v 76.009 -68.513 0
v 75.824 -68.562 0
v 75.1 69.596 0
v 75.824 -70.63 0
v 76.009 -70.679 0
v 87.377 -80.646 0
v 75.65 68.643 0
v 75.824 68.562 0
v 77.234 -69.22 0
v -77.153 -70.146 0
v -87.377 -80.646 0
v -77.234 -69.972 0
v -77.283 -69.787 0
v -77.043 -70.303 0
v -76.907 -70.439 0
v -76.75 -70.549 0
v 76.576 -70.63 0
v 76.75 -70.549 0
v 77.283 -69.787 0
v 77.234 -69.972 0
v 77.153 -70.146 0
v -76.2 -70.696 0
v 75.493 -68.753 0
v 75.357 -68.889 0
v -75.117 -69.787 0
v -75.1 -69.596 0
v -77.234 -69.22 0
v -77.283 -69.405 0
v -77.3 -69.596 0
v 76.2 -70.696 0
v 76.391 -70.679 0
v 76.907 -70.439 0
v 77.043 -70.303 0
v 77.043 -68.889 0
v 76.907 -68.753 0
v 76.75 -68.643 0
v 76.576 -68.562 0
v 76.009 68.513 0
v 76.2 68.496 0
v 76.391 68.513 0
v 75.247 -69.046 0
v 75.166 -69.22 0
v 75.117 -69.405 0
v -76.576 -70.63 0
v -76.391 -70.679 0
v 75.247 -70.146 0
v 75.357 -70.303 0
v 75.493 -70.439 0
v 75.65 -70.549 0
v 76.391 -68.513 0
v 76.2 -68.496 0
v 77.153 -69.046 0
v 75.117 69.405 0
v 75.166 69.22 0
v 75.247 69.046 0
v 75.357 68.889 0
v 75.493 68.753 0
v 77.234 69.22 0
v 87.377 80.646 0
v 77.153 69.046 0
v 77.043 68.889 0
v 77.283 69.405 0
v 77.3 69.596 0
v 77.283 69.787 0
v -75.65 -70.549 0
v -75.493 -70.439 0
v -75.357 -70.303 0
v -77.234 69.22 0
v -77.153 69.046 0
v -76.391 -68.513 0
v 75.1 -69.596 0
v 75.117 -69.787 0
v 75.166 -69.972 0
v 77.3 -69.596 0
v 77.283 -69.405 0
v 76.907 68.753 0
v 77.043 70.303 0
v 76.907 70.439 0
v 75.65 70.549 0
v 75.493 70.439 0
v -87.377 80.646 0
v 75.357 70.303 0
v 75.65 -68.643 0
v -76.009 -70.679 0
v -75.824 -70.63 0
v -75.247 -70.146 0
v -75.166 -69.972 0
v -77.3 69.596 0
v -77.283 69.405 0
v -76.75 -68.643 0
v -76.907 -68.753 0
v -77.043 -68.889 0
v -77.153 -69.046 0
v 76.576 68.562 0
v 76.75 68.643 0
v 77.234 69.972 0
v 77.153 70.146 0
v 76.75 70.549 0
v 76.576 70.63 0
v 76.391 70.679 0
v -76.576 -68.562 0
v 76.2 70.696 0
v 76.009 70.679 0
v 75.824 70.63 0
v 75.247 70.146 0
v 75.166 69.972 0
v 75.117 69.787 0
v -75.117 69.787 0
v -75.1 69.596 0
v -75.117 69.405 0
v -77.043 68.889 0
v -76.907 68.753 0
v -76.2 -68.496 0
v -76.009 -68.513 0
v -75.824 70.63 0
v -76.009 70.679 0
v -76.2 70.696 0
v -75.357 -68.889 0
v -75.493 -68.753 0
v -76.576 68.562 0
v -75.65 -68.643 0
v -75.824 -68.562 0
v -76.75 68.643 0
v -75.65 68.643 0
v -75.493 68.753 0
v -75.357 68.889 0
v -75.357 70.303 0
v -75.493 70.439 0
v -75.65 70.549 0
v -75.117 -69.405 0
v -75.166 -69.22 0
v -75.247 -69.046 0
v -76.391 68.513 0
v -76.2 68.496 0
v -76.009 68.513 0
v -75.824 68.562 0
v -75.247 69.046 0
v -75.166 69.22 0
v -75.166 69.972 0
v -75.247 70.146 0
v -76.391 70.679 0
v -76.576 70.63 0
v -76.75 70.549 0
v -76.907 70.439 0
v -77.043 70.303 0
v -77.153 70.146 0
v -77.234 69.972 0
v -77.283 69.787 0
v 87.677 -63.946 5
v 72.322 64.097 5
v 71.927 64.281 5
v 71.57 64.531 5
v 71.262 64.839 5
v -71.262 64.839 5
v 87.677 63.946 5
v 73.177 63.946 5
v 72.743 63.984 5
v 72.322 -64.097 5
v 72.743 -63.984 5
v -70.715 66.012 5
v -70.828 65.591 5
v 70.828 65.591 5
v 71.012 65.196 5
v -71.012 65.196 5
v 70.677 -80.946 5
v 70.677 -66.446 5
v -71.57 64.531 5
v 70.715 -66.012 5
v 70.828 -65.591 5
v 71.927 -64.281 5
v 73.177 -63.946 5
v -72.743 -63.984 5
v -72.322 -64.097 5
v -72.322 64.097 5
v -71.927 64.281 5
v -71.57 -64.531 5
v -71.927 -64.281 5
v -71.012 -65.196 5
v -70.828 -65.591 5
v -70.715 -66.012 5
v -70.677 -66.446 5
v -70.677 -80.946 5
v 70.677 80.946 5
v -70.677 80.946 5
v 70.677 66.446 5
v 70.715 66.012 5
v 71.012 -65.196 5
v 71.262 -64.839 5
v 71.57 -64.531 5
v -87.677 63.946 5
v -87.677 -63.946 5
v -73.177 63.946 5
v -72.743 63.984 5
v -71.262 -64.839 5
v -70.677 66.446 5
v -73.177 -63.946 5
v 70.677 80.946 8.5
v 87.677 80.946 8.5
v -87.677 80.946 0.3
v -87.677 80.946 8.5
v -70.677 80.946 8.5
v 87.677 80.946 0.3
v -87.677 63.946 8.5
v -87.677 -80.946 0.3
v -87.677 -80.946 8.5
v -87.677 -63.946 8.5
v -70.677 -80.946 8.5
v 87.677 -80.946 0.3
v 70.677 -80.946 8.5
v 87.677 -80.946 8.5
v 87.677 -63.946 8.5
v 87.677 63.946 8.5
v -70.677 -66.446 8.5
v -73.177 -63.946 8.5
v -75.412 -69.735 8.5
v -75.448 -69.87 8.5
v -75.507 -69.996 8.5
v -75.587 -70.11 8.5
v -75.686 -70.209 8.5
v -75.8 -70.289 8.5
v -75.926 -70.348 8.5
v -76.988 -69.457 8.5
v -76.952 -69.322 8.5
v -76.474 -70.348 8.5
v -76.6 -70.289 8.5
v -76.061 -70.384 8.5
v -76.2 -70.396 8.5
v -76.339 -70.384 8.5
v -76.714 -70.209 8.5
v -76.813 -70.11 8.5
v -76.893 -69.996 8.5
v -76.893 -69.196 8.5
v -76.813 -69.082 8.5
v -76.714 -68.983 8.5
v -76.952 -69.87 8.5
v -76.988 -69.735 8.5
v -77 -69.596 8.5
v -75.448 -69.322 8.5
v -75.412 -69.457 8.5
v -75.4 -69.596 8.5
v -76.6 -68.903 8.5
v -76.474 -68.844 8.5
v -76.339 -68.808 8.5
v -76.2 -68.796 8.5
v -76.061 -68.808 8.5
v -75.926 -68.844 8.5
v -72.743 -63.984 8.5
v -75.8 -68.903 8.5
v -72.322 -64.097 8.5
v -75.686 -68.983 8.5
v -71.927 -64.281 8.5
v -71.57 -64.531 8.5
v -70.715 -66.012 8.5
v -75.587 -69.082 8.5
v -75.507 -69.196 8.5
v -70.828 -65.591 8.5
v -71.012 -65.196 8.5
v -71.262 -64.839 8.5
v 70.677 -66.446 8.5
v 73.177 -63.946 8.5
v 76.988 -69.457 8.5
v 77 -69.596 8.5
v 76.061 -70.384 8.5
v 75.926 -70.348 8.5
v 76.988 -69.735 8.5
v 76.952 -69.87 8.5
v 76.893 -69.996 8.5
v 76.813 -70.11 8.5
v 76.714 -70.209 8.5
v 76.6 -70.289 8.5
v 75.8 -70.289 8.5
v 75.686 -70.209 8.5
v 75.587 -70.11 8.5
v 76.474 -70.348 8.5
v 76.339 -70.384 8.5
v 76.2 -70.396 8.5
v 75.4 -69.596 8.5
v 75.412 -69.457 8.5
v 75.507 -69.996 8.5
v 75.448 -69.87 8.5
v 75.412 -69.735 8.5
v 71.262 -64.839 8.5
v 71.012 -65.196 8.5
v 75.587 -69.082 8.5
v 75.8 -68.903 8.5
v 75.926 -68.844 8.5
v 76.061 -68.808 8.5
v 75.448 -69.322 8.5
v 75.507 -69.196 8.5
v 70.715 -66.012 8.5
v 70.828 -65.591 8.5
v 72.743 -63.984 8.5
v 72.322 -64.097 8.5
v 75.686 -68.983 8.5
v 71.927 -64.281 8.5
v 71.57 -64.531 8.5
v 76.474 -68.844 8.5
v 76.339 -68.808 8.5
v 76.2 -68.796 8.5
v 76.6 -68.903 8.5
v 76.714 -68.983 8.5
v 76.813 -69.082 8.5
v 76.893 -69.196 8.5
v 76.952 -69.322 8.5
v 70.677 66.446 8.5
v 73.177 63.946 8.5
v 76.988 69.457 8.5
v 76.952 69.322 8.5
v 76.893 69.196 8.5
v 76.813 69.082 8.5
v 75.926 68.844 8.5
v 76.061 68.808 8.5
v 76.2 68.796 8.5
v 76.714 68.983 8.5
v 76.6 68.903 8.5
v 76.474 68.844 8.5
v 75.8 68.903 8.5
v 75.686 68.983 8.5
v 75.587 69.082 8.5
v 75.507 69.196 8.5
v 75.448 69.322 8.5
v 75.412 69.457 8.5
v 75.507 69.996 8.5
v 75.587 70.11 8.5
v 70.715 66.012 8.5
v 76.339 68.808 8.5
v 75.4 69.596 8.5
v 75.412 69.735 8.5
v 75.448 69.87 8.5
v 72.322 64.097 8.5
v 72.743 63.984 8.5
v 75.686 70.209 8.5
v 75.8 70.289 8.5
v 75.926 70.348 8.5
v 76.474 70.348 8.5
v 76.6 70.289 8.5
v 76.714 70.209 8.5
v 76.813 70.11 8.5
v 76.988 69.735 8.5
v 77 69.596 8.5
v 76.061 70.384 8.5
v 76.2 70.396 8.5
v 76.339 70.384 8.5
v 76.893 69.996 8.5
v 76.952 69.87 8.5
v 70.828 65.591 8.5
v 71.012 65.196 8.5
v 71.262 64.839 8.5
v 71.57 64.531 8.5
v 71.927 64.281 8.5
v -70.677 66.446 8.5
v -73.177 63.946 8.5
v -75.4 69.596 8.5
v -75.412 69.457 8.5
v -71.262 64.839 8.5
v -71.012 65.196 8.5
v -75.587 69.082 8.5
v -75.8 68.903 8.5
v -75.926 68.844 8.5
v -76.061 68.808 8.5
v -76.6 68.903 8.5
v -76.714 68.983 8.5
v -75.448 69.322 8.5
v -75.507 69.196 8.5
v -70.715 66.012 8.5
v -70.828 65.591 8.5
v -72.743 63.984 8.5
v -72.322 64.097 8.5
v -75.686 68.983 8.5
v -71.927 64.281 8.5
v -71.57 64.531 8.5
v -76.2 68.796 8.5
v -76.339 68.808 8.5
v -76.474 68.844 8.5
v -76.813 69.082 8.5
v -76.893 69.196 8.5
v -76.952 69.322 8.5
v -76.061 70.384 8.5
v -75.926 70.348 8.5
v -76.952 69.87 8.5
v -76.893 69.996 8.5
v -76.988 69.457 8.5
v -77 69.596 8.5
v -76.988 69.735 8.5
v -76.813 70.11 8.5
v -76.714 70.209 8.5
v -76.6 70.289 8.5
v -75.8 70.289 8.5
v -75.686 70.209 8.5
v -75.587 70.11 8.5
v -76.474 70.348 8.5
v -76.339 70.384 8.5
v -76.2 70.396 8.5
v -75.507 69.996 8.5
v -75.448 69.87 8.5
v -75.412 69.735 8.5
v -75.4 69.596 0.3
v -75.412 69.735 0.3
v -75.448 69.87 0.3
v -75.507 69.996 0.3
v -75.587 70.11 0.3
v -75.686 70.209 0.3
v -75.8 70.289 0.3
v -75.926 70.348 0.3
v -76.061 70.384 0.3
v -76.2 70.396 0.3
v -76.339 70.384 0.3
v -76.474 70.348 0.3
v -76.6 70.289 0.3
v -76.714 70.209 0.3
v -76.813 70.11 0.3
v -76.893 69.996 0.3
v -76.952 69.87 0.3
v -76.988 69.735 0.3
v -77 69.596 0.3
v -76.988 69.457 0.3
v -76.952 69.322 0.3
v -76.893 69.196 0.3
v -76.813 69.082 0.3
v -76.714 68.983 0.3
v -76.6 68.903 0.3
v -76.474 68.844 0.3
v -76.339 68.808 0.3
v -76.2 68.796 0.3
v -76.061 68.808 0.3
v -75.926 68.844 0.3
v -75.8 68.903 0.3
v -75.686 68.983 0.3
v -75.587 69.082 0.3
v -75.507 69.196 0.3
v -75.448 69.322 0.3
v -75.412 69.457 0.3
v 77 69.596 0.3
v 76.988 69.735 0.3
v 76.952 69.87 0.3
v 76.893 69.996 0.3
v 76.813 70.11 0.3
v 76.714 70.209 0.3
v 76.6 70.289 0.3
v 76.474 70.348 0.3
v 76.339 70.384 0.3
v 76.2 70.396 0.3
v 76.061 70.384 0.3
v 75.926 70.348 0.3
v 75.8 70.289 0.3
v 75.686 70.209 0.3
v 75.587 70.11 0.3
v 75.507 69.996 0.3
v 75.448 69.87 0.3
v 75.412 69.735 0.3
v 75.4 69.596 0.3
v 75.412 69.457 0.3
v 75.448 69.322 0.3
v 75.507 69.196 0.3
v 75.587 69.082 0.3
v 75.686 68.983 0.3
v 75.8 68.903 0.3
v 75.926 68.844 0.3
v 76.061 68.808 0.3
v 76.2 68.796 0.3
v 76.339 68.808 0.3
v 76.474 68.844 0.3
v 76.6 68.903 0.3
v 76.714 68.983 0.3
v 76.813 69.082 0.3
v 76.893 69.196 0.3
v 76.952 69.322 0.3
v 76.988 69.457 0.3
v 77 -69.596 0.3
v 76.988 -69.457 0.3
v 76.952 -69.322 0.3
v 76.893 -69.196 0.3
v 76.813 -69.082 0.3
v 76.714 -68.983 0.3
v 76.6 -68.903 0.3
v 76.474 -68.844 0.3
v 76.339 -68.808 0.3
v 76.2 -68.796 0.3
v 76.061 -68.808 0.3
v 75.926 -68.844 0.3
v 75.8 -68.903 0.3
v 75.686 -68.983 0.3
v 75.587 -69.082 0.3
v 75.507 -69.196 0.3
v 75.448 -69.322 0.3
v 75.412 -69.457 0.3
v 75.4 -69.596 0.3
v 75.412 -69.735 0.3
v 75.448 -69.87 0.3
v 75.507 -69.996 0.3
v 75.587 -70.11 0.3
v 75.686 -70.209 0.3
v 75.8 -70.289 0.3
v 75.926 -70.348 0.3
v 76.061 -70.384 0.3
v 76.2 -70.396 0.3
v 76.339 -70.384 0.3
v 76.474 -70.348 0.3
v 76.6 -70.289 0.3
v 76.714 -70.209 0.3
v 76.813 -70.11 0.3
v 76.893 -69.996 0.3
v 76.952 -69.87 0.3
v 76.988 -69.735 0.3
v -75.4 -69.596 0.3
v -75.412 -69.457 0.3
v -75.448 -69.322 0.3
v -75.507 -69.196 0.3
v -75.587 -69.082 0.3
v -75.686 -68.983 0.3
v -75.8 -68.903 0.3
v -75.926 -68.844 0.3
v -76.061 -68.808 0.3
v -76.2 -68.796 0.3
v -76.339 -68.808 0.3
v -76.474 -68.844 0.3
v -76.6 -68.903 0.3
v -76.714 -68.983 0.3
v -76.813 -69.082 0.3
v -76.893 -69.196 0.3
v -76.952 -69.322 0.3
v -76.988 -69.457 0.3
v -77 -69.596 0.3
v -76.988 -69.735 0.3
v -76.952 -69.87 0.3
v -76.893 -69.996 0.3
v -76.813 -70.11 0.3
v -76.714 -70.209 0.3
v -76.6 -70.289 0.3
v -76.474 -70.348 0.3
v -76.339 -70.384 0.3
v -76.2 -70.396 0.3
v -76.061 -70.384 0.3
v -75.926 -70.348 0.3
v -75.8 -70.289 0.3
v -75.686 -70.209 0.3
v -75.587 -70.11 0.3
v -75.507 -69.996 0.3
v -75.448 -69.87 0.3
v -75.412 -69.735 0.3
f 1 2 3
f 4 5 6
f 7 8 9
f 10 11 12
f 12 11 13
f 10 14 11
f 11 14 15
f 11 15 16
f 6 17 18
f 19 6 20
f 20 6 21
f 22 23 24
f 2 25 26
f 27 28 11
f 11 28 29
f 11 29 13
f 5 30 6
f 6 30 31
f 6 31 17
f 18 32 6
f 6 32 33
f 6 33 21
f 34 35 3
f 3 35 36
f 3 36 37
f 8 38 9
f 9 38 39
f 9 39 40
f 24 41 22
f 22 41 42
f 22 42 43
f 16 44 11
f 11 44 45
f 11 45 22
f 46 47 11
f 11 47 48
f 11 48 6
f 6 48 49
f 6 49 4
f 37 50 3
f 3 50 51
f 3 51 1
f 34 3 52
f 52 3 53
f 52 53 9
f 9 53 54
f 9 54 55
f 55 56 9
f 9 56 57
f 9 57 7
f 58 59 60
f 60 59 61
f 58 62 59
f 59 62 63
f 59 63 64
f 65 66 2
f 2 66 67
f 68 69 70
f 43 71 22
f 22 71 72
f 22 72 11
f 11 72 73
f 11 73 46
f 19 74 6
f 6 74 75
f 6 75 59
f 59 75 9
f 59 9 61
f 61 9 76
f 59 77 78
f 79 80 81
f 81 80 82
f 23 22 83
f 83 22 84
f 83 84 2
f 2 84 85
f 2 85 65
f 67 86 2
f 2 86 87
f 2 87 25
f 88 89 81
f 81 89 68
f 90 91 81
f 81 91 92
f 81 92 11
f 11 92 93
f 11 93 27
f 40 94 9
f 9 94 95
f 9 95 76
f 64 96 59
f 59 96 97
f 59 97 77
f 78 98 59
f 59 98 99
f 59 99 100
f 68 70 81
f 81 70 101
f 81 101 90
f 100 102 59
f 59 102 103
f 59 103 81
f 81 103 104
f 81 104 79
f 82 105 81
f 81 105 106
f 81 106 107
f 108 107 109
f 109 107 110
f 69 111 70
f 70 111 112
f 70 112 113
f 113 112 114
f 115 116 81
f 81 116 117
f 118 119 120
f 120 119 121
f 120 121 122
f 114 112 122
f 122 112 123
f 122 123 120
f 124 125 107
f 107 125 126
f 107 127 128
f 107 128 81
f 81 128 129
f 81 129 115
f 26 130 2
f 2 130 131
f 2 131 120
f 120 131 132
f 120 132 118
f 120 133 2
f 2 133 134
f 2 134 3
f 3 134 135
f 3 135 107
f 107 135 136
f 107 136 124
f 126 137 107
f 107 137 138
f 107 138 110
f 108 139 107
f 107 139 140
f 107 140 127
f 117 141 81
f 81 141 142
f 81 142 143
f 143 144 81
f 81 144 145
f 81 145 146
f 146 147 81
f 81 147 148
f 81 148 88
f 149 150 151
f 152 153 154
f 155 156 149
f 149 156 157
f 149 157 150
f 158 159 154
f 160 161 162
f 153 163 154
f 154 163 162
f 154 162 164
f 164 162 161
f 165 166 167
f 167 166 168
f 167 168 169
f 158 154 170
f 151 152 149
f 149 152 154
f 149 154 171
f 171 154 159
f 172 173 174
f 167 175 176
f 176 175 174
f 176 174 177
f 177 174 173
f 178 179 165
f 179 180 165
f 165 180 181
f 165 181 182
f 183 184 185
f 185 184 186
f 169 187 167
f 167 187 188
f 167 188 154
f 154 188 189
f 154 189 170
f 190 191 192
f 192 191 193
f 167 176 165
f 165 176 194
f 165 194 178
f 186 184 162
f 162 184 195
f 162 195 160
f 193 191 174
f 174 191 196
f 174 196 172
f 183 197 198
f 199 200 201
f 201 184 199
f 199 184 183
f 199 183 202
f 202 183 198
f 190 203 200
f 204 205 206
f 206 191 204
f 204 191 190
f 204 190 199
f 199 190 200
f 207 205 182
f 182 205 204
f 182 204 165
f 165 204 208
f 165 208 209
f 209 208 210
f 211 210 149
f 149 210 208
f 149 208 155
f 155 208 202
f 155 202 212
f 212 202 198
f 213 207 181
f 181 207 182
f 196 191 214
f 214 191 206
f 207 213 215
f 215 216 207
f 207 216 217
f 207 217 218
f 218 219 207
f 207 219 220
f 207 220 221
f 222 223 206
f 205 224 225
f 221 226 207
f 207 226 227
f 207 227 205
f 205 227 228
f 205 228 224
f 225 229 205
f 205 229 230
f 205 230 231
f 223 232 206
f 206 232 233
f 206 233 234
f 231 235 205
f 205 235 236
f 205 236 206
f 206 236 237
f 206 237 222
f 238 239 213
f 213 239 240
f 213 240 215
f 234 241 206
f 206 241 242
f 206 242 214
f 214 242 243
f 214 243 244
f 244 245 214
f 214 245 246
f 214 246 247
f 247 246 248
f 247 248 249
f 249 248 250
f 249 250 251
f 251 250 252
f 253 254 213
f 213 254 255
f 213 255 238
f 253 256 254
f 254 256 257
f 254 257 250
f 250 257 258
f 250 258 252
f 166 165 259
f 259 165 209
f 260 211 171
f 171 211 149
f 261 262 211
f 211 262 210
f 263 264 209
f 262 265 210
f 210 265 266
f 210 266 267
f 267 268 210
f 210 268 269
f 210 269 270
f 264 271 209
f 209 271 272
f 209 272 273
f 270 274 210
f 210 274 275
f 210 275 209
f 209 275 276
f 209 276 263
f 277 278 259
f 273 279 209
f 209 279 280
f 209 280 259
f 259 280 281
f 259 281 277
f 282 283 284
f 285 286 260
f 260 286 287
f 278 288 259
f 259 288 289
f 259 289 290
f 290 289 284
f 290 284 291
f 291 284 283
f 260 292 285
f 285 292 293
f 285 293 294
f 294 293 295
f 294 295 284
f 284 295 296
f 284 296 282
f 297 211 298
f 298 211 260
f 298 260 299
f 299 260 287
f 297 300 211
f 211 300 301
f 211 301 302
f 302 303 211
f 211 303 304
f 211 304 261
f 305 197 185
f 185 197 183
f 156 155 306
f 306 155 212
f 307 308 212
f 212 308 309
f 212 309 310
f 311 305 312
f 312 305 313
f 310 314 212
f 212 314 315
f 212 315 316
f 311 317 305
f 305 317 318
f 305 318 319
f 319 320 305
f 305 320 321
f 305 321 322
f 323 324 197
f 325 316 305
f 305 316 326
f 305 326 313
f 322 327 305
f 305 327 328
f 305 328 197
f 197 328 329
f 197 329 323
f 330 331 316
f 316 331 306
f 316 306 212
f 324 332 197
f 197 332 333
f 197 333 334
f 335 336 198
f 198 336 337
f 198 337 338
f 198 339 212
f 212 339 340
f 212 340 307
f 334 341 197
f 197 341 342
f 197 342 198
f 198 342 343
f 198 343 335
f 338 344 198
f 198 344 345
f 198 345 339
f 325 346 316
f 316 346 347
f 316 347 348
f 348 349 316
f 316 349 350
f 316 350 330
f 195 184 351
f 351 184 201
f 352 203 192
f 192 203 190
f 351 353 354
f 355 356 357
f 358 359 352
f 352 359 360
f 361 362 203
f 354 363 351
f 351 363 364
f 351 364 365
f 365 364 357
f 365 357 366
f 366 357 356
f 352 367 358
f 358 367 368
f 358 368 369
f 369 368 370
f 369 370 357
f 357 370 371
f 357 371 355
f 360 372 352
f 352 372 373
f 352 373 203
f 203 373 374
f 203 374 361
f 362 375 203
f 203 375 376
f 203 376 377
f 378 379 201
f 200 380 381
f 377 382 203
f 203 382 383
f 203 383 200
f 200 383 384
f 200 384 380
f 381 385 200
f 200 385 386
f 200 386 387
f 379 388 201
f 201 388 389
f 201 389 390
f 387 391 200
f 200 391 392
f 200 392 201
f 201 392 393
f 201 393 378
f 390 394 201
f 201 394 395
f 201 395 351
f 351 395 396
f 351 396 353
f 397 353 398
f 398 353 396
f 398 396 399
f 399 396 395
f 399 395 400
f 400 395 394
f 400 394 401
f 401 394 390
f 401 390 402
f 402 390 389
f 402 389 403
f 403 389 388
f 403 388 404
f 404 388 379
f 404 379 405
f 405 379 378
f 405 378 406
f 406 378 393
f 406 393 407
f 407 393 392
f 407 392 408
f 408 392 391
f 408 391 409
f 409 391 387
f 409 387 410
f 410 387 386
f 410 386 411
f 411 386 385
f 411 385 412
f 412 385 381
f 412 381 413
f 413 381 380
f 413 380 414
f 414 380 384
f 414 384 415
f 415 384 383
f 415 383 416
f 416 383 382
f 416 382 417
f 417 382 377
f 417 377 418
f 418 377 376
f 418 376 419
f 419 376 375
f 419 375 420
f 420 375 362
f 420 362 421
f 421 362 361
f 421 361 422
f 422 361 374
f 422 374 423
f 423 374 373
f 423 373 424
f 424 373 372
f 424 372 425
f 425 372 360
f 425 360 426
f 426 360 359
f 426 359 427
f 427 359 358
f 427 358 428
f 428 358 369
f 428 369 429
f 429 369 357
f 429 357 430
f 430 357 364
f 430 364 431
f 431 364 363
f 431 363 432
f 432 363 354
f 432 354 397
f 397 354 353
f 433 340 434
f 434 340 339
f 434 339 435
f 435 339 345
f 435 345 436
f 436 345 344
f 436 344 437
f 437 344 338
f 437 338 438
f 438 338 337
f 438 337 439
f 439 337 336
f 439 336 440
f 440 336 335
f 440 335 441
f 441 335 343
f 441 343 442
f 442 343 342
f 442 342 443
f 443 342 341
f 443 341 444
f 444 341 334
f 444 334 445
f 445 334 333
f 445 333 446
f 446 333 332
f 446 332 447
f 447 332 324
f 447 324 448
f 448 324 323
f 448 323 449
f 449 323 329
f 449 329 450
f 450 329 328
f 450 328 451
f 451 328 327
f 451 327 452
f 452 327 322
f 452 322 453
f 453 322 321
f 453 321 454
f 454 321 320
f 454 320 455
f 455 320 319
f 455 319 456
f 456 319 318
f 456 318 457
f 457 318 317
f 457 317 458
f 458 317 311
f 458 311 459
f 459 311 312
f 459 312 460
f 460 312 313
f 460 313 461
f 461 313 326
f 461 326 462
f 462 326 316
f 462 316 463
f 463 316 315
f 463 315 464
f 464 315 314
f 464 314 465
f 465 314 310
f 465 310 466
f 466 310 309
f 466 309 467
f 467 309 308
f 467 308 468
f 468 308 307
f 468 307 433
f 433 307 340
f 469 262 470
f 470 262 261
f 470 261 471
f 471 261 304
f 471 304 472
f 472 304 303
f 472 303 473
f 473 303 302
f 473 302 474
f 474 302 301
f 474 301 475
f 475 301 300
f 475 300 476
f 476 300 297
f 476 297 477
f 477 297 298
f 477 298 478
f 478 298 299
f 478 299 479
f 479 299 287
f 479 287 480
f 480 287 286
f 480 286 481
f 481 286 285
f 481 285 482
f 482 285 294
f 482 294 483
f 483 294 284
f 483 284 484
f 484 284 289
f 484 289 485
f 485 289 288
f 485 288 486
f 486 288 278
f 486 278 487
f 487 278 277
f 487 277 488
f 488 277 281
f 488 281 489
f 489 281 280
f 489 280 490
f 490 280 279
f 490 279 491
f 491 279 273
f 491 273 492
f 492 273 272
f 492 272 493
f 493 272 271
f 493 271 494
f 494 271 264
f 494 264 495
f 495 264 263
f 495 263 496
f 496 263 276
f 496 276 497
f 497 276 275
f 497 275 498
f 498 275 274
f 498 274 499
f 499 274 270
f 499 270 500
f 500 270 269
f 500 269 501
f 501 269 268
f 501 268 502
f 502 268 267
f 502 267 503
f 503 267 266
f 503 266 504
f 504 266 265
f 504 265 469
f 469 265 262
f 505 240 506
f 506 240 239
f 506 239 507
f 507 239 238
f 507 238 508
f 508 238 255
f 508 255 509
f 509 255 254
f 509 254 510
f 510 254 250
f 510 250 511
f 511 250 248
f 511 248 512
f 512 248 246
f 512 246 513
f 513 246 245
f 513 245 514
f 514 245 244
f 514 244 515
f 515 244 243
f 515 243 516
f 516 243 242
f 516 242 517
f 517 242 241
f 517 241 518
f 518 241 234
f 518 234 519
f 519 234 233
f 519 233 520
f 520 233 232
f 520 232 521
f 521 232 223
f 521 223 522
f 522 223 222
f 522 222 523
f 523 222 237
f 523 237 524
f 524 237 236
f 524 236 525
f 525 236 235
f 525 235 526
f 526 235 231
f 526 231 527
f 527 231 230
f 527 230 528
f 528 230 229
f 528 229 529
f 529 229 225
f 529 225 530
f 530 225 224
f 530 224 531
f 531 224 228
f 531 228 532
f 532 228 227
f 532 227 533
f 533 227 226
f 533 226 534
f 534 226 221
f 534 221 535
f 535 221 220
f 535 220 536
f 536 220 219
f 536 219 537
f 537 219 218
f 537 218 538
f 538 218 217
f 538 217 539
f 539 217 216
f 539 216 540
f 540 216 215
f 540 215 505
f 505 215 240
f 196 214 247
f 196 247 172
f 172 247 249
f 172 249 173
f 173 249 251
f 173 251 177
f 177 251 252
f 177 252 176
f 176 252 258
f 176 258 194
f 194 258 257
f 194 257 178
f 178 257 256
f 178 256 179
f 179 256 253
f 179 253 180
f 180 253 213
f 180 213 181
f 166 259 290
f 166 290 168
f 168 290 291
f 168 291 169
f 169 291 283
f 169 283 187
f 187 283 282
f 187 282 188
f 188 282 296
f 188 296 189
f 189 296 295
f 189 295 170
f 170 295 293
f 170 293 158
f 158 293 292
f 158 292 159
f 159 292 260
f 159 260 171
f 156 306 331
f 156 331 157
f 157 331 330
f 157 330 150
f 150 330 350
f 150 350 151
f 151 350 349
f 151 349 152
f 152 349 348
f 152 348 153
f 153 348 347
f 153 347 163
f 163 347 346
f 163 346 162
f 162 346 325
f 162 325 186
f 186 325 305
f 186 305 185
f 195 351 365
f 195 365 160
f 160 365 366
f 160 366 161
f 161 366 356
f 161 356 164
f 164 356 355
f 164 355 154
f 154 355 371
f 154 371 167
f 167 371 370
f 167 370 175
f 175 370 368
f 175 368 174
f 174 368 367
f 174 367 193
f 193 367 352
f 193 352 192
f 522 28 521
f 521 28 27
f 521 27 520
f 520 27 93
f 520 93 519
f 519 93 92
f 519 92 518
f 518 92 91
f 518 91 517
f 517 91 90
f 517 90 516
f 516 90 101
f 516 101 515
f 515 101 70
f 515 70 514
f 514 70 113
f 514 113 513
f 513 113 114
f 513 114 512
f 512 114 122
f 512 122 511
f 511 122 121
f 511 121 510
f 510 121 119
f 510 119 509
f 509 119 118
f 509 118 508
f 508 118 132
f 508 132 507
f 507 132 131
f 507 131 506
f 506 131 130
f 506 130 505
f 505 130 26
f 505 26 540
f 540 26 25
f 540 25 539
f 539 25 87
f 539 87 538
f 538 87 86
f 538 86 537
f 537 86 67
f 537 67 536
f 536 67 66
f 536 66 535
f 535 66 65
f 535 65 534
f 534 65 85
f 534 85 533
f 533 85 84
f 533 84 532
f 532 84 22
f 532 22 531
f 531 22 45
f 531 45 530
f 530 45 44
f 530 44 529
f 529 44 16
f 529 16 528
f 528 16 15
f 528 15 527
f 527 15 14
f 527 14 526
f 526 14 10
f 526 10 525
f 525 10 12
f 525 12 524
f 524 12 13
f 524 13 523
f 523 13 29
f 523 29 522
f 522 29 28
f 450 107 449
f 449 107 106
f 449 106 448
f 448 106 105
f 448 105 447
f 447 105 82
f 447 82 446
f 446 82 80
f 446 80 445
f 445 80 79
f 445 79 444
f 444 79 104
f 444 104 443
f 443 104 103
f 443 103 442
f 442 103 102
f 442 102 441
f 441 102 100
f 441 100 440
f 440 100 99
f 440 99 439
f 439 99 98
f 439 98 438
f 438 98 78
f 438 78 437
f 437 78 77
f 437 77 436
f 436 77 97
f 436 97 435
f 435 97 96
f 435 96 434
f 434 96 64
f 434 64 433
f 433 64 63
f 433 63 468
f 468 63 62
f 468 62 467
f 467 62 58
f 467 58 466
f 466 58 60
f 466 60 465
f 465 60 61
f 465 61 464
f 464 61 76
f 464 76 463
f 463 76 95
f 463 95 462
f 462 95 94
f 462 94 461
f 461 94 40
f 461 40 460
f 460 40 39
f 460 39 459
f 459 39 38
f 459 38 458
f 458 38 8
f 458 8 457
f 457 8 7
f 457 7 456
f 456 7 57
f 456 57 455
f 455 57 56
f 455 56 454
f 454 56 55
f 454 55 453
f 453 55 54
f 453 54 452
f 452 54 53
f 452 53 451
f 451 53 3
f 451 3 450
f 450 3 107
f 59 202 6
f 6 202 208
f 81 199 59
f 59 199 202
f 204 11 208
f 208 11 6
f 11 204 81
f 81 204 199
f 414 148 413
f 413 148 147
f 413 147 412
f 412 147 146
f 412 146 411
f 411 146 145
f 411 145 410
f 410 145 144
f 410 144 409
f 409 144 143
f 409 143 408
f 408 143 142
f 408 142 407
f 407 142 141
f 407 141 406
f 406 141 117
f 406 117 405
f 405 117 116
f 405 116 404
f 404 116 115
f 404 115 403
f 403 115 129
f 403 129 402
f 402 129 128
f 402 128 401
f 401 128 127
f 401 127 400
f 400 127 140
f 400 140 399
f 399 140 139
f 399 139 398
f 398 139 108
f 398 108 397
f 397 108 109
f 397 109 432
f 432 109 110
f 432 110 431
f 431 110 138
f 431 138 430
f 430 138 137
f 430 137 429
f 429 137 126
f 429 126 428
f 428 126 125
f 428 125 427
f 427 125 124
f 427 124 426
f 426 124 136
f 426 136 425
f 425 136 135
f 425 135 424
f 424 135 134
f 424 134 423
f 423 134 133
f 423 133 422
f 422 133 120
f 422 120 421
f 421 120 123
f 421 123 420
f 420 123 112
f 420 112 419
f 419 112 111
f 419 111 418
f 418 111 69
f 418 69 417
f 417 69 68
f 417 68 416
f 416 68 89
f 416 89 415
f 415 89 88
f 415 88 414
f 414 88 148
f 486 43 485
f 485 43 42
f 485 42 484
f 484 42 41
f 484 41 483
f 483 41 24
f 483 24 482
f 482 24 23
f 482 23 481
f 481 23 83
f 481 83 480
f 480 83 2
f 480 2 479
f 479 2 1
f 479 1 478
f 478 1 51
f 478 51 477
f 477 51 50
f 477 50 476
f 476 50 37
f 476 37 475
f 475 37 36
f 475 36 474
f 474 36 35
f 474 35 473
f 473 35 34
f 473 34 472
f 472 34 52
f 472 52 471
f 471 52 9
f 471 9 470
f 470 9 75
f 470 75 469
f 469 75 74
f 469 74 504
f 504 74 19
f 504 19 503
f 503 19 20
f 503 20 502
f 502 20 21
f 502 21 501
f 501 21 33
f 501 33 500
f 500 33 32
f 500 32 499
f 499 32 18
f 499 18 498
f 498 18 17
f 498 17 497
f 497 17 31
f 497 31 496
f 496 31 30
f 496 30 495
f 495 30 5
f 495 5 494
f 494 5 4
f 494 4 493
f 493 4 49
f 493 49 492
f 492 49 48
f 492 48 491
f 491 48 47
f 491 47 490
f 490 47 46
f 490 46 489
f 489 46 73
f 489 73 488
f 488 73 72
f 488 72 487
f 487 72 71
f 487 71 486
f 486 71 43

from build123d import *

# Parameters (mm, degrees)
SKETCH1_W           = 161.892
SKETCH1_H           = 175.354
BOSS_EXTRUDE1_DEPTH = 5
SKETCH2_W           = 17
SKETCH2_H           = 17
BOSS_EXTRUDE2_DEPTH = 3.5
SKETCH3_R           = 0.8
CUT_EXTRUDE1_DEPTH  = 120.63177356
FILLET1_R           = 2.5
CHAMFER1_SIZE       = 0.3


with BuildPart() as part:
    # Sketch1 → Boss-Extrude1 (new body)
    with BuildSketch(Plane(origin=(0, 0, 0), x_dir=(0, 1, 0), z_dir=(0, 0, 1))):
        Rectangle(SKETCH1_W, SKETCH1_H)
    extrude(amount=BOSS_EXTRUDE1_DEPTH)

    # Sketch2 → Boss-Extrude2 (add)
    with BuildSketch(Plane.XY.offset(5)):
        with Locations((79.177, 72.446)):
            Rectangle(SKETCH2_W, SKETCH2_H)
        with Locations((79.177, -72.446)):
            Rectangle(SKETCH2_W, SKETCH2_H)
        with Locations((-79.177, -72.446)):
            Rectangle(SKETCH2_W, SKETCH2_H)
        with Locations((-79.177, 72.446)):
            Rectangle(SKETCH2_W, SKETCH2_H)
    extrude(amount=BOSS_EXTRUDE2_DEPTH)

    # Sketch3 → Cut-Extrude1 (cut, through all)
    with BuildSketch(Plane.XY.offset(8.5)):
        with Locations((-76.2, 69.596)):
            Circle(SKETCH3_R)
        with Locations((76.2, 69.596)):
            Circle(SKETCH3_R)
        with Locations((76.2, -69.596)):
            Circle(SKETCH3_R)
        with Locations((-76.2, -69.596)):
            Circle(SKETCH3_R)
    extrude(amount=-CUT_EXTRUDE1_DEPTH, mode=Mode.SUBTRACT)

    # Fillet1
    fillet1_edges = [part.edges().sort_by_distance(p)[0] for p in [
        (-70.677, 63.946, 6.75),
        (70.677, 63.946, 6.75),
        (70.677, -63.946, 6.75),
        (-70.677, -63.946, 6.75),
    ]]
    fillet(fillet1_edges, radius=FILLET1_R)

    # Chamfer1
    chamfer1_edges = [part.edges().sort_by_distance(p)[0] for p in [
        (87.677, 0, 0),
        (0, -80.946, 0),
        (-87.677, 0, 0),
        (0, 80.946, 0),
        (-77, -69.596, 0),
        (75.4, -69.596, 0),
        (75.4, 69.596, 0),
        (-77, 69.596, 0),
    ]]
    chamfer(chamfer1_edges, length=CHAMFER1_SIZE)


solid = part.part
